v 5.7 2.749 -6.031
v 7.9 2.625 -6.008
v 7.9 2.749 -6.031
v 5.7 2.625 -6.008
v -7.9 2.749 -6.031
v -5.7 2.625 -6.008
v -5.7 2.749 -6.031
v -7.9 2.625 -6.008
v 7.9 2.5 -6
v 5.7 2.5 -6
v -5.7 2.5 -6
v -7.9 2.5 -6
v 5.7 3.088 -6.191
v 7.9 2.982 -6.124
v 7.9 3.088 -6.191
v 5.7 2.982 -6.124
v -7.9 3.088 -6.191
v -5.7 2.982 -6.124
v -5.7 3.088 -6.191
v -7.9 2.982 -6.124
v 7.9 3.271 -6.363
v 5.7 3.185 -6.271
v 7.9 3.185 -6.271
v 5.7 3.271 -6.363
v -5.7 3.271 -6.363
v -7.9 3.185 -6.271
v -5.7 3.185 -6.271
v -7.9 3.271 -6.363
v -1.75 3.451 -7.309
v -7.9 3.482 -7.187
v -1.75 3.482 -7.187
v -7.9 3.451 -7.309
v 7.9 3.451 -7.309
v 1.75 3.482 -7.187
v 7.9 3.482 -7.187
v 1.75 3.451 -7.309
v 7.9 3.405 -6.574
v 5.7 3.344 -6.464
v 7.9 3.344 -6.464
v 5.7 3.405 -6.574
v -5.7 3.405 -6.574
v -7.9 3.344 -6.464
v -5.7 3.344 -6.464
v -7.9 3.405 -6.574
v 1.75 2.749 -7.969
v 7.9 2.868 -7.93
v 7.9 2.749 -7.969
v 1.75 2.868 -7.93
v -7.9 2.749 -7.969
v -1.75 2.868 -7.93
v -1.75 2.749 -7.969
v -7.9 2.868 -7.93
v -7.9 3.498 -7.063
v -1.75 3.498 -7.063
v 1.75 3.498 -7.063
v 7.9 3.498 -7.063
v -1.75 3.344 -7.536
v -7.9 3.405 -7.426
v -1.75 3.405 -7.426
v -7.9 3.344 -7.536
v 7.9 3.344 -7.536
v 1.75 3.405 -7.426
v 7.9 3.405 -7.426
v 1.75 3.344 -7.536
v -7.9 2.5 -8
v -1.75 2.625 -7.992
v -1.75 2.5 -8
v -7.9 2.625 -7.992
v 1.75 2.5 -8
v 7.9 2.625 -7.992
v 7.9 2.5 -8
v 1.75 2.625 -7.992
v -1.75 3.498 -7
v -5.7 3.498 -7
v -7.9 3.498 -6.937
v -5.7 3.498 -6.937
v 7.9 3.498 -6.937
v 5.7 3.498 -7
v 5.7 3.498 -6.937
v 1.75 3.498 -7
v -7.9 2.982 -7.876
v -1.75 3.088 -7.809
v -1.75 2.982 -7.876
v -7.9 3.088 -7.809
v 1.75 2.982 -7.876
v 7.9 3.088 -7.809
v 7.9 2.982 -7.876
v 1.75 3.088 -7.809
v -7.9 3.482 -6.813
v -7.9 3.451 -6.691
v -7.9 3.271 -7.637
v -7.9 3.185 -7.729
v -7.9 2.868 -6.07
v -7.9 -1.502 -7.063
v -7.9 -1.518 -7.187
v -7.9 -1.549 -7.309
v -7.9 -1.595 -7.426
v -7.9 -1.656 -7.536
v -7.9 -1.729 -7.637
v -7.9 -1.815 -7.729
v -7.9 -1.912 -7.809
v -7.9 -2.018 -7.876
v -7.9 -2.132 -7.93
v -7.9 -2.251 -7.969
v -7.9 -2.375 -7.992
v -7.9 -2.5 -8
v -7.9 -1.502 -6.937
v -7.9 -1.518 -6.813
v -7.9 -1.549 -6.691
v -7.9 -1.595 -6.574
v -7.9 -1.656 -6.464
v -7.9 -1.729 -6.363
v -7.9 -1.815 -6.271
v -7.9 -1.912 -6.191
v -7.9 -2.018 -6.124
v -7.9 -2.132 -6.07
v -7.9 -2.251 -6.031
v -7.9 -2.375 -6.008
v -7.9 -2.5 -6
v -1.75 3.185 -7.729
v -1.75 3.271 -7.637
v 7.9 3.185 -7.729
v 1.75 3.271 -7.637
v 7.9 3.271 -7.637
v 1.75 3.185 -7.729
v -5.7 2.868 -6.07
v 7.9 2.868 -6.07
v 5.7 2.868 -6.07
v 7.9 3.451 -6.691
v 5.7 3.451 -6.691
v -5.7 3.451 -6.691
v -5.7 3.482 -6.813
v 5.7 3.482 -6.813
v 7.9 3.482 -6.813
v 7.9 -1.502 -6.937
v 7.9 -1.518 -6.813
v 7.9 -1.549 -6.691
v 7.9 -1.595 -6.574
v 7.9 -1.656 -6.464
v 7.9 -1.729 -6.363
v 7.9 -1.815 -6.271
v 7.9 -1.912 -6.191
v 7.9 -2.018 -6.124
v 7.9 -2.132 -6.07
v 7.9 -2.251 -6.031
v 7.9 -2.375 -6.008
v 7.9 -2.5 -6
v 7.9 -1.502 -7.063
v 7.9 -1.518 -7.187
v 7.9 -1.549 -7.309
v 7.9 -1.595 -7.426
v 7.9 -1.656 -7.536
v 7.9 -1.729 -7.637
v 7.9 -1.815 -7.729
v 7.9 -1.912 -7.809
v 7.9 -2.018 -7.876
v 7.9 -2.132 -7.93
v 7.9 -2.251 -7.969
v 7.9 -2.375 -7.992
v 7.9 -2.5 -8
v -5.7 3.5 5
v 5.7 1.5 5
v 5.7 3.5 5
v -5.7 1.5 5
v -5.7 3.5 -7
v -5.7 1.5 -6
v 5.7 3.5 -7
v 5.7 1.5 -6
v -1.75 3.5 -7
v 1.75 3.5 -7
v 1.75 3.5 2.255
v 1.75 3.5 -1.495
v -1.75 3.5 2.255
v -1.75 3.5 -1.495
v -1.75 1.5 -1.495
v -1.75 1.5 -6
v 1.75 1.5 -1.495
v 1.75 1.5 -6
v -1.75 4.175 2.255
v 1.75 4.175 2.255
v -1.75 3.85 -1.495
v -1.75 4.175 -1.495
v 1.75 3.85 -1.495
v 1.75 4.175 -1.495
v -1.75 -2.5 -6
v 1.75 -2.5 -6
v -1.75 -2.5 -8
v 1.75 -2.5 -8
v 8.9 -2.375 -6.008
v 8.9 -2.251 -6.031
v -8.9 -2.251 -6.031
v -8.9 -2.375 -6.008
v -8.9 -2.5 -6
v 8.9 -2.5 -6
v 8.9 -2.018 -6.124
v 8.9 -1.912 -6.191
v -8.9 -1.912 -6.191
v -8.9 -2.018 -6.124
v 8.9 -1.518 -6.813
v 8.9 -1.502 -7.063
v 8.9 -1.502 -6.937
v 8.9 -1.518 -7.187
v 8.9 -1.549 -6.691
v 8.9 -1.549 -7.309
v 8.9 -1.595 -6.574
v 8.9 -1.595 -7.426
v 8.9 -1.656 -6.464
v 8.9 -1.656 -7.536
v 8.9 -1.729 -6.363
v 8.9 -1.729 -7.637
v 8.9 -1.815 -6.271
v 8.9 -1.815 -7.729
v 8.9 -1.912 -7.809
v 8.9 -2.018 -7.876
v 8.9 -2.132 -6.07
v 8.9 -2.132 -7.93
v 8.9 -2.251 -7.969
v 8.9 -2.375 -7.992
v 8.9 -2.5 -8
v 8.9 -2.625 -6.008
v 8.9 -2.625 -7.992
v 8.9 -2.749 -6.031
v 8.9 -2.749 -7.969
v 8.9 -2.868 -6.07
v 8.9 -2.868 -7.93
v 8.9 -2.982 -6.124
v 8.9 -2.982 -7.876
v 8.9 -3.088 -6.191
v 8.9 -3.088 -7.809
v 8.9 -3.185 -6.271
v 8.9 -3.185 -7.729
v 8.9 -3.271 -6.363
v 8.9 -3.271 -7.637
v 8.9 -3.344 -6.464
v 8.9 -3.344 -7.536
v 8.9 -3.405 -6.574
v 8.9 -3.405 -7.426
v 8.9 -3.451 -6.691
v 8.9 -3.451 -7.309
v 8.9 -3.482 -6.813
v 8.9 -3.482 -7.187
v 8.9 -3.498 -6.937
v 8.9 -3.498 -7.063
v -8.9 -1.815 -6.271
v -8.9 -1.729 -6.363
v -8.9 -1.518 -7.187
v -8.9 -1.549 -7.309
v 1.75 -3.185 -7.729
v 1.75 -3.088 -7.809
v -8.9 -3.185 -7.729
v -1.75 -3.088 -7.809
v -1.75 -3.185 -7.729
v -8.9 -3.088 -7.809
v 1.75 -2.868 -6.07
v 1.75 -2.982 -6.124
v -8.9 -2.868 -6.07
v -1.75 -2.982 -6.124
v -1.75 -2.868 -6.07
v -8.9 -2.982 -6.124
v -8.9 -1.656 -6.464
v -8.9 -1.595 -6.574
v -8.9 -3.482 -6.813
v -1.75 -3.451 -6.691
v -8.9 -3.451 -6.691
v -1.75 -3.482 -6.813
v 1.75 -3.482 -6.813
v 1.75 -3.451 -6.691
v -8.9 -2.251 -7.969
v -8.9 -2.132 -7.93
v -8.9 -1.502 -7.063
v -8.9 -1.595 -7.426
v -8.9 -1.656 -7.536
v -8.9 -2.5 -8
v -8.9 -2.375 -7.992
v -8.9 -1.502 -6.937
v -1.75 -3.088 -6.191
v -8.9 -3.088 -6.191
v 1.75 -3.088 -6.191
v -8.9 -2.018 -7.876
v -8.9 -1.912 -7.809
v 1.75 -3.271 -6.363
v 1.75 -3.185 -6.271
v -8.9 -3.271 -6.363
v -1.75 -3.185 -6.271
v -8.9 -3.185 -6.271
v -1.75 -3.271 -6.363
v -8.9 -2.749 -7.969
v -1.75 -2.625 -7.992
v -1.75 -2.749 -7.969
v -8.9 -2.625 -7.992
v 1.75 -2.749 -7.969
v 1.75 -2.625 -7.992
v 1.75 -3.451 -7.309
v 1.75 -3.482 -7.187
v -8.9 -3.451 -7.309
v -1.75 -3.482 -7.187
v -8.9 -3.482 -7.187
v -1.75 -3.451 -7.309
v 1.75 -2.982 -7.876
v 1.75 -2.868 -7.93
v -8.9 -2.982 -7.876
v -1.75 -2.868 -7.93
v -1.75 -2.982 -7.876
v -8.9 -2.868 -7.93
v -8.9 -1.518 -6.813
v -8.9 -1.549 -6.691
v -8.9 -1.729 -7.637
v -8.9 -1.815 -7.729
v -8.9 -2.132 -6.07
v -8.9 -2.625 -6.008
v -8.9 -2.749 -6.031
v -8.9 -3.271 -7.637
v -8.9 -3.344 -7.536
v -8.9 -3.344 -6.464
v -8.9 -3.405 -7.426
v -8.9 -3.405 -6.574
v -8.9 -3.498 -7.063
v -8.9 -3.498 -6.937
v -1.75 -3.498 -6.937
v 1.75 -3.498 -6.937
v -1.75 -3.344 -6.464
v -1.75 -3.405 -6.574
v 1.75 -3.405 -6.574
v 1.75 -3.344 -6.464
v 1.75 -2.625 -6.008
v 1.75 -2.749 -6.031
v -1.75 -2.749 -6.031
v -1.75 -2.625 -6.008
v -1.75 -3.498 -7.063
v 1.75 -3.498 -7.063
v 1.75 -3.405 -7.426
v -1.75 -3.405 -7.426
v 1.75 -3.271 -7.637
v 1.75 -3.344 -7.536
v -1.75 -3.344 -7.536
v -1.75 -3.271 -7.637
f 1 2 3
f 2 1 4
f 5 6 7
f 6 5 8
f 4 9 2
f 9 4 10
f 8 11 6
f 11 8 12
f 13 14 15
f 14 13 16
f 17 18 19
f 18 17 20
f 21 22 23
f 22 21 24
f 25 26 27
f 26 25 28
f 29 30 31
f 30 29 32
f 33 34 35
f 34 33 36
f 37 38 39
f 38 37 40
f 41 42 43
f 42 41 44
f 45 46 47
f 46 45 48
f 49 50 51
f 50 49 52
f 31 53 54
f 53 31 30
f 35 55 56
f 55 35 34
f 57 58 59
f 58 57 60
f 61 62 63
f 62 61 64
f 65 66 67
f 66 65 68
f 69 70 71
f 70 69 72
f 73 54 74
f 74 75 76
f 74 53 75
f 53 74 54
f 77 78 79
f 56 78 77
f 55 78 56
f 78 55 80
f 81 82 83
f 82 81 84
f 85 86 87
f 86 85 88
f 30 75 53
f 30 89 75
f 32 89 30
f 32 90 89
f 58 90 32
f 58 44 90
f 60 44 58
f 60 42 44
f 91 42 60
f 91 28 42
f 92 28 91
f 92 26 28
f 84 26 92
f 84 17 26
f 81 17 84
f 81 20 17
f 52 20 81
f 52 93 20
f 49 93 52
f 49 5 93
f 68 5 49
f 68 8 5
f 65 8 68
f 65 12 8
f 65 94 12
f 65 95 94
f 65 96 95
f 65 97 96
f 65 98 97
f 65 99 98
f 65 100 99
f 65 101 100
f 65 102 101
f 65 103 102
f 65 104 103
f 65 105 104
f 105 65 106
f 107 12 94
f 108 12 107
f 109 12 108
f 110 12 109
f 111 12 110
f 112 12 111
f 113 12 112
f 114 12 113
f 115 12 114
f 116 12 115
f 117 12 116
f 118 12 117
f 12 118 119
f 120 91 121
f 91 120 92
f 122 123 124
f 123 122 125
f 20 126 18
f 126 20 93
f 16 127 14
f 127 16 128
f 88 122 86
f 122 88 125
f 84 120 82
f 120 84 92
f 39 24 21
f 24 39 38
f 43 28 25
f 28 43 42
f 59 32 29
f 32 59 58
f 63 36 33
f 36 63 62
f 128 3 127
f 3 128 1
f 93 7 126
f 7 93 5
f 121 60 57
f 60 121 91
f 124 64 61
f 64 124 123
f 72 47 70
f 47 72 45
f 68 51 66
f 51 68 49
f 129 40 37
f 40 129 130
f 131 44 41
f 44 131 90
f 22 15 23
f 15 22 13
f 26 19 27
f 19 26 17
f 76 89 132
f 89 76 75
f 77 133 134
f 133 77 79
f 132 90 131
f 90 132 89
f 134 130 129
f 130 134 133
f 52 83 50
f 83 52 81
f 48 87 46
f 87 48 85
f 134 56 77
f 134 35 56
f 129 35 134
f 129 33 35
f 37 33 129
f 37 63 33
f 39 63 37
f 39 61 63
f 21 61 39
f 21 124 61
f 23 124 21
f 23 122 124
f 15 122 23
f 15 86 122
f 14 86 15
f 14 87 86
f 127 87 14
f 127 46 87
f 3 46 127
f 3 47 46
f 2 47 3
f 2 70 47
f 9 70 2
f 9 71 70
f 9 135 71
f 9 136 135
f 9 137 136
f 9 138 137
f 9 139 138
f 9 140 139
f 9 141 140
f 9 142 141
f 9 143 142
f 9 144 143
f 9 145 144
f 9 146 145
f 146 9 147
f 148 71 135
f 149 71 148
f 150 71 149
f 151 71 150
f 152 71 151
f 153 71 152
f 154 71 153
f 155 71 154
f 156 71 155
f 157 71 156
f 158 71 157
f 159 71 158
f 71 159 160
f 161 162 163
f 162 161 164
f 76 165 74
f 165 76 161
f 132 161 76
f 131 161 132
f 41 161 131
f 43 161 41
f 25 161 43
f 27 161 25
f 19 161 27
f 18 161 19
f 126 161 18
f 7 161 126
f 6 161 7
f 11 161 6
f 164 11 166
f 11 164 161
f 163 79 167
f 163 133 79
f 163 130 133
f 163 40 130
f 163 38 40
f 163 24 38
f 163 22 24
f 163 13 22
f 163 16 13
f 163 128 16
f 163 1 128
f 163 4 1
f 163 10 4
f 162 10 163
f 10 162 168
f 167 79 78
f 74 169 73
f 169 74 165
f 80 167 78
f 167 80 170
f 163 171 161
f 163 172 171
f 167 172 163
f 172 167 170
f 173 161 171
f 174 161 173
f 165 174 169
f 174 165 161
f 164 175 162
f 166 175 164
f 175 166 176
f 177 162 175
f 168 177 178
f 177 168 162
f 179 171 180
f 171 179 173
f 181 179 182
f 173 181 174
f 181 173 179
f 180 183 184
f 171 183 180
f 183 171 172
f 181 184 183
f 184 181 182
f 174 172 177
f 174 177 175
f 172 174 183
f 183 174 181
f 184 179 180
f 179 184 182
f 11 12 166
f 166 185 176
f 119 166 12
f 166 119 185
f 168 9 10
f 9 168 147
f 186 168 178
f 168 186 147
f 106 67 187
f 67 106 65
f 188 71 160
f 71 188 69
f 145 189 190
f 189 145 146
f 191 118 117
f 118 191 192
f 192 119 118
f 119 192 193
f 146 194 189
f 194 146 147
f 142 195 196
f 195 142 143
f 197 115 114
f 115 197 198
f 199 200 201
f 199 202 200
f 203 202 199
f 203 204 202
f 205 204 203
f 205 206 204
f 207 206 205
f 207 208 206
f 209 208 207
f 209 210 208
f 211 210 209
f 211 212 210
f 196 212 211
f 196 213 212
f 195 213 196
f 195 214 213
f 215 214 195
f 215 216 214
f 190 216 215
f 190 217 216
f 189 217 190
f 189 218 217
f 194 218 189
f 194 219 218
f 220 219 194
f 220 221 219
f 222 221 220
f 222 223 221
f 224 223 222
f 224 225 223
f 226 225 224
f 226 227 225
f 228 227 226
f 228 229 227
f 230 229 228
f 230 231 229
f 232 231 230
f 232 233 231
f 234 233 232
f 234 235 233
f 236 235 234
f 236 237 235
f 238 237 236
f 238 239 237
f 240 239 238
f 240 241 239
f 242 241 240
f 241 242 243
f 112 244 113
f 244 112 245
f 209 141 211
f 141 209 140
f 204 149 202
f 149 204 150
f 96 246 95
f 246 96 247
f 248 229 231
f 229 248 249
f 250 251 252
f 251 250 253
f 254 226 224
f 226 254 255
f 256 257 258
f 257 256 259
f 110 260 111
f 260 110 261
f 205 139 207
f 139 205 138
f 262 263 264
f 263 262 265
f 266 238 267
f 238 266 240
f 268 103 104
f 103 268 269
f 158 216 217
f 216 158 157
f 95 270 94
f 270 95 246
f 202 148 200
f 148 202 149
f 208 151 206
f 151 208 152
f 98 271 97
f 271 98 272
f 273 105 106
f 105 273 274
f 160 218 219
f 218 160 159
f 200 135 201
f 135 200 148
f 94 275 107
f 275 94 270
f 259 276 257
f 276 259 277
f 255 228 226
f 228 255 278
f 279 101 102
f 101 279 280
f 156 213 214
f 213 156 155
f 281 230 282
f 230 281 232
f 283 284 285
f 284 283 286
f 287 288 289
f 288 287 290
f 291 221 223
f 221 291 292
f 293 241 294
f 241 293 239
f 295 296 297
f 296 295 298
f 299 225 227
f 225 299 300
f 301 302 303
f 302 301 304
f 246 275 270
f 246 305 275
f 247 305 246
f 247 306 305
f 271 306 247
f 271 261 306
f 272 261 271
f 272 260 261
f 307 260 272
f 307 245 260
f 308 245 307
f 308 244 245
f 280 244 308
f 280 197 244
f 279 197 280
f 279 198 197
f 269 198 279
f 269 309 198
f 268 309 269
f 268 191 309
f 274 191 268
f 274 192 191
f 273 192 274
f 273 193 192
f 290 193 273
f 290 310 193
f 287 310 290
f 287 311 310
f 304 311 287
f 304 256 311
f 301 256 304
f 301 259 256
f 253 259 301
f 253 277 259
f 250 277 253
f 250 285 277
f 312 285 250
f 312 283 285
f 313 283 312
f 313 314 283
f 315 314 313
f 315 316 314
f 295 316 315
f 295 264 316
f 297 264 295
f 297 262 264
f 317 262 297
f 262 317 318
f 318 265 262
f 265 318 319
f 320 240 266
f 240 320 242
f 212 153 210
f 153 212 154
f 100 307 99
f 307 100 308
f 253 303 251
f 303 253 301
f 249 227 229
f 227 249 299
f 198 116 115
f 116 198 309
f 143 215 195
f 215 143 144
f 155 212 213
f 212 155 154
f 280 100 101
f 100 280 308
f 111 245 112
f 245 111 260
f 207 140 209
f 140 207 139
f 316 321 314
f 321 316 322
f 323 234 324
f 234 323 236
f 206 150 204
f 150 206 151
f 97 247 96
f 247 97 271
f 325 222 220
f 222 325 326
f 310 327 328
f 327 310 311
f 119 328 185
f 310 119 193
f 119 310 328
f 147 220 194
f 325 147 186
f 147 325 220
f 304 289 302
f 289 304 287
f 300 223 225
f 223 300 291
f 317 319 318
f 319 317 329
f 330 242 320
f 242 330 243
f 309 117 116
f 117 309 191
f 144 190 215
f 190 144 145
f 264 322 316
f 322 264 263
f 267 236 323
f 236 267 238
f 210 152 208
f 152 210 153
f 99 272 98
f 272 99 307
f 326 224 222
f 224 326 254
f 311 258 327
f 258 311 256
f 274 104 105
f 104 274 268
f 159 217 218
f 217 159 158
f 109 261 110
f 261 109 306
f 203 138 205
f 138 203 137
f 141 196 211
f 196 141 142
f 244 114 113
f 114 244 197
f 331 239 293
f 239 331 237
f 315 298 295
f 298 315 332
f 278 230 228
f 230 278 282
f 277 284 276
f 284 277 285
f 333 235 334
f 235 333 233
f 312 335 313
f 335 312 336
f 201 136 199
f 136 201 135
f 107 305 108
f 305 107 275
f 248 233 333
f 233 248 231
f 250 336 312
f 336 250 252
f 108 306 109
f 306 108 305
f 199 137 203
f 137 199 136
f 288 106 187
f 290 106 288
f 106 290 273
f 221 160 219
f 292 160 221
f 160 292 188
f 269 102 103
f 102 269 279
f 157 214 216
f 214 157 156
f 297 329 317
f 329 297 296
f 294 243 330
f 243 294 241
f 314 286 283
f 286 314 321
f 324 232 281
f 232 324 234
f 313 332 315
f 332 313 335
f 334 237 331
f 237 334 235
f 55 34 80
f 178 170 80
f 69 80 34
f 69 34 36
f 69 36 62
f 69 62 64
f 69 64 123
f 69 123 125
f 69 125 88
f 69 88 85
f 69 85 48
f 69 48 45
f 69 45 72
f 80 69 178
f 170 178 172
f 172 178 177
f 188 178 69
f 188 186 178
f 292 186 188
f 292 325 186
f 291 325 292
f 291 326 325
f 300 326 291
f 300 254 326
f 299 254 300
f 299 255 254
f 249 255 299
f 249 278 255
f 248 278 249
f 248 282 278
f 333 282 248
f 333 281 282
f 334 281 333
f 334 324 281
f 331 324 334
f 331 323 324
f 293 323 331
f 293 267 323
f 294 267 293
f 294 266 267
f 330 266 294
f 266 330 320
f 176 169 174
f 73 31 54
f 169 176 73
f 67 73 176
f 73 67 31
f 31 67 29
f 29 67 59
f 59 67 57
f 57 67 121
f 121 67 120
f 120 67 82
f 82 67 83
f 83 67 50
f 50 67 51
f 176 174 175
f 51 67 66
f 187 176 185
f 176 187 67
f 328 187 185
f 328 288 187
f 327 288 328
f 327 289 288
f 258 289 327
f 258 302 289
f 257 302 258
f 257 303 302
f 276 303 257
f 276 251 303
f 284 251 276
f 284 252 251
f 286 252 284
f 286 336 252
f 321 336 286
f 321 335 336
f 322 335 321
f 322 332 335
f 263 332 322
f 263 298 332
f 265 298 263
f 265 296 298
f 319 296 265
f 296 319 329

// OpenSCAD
loewetv_klappen_befestigung();

module loewetv_klappen_befestigung() {
    $fn = 50;
    dicke         = 2;
    tv_laenge     = 12;
    tv_breite     = 11.4;
    klappe_breite = 15.8;
    //verschieben damit es mittig ist (ist so einfacher gewesen :()
    translate([0, 0, (tv_laenge + dicke) / -2]) {
        difference() {
            rotate([0, 270, 0]) {
                union() {
                    translate([0, 2.5, 0]) {
                        cylinder(d = dicke, h = klappe_breite, center = true);
                        translate([tv_laenge / 2, 0, 0]) {
                            cube([tv_laenge, dicke, tv_breite], center = true);
                        }
                        //die 7.38 verstehe ich gar nicht :(
                        //die 1.3 auch nicht :(
                        translate([7.38, 1.3, 0]) {
                            cube([3.75, 0.75, 3.5], center = true);
                        }
                    }
                    cube([dicke, 5, klappe_breite], center = true);
                    translate([0, -2.5, 0]) {
                        cylinder(d = dicke, h = klappe_breite + 2, center = true);
                    }
                }
            }

            translate([0, 0, (6.5 - dicke) / 2]) {
                cube([3.5, (5 + dicke) * 1.1, 6.51], center = true);
            }
        }
    }
}
